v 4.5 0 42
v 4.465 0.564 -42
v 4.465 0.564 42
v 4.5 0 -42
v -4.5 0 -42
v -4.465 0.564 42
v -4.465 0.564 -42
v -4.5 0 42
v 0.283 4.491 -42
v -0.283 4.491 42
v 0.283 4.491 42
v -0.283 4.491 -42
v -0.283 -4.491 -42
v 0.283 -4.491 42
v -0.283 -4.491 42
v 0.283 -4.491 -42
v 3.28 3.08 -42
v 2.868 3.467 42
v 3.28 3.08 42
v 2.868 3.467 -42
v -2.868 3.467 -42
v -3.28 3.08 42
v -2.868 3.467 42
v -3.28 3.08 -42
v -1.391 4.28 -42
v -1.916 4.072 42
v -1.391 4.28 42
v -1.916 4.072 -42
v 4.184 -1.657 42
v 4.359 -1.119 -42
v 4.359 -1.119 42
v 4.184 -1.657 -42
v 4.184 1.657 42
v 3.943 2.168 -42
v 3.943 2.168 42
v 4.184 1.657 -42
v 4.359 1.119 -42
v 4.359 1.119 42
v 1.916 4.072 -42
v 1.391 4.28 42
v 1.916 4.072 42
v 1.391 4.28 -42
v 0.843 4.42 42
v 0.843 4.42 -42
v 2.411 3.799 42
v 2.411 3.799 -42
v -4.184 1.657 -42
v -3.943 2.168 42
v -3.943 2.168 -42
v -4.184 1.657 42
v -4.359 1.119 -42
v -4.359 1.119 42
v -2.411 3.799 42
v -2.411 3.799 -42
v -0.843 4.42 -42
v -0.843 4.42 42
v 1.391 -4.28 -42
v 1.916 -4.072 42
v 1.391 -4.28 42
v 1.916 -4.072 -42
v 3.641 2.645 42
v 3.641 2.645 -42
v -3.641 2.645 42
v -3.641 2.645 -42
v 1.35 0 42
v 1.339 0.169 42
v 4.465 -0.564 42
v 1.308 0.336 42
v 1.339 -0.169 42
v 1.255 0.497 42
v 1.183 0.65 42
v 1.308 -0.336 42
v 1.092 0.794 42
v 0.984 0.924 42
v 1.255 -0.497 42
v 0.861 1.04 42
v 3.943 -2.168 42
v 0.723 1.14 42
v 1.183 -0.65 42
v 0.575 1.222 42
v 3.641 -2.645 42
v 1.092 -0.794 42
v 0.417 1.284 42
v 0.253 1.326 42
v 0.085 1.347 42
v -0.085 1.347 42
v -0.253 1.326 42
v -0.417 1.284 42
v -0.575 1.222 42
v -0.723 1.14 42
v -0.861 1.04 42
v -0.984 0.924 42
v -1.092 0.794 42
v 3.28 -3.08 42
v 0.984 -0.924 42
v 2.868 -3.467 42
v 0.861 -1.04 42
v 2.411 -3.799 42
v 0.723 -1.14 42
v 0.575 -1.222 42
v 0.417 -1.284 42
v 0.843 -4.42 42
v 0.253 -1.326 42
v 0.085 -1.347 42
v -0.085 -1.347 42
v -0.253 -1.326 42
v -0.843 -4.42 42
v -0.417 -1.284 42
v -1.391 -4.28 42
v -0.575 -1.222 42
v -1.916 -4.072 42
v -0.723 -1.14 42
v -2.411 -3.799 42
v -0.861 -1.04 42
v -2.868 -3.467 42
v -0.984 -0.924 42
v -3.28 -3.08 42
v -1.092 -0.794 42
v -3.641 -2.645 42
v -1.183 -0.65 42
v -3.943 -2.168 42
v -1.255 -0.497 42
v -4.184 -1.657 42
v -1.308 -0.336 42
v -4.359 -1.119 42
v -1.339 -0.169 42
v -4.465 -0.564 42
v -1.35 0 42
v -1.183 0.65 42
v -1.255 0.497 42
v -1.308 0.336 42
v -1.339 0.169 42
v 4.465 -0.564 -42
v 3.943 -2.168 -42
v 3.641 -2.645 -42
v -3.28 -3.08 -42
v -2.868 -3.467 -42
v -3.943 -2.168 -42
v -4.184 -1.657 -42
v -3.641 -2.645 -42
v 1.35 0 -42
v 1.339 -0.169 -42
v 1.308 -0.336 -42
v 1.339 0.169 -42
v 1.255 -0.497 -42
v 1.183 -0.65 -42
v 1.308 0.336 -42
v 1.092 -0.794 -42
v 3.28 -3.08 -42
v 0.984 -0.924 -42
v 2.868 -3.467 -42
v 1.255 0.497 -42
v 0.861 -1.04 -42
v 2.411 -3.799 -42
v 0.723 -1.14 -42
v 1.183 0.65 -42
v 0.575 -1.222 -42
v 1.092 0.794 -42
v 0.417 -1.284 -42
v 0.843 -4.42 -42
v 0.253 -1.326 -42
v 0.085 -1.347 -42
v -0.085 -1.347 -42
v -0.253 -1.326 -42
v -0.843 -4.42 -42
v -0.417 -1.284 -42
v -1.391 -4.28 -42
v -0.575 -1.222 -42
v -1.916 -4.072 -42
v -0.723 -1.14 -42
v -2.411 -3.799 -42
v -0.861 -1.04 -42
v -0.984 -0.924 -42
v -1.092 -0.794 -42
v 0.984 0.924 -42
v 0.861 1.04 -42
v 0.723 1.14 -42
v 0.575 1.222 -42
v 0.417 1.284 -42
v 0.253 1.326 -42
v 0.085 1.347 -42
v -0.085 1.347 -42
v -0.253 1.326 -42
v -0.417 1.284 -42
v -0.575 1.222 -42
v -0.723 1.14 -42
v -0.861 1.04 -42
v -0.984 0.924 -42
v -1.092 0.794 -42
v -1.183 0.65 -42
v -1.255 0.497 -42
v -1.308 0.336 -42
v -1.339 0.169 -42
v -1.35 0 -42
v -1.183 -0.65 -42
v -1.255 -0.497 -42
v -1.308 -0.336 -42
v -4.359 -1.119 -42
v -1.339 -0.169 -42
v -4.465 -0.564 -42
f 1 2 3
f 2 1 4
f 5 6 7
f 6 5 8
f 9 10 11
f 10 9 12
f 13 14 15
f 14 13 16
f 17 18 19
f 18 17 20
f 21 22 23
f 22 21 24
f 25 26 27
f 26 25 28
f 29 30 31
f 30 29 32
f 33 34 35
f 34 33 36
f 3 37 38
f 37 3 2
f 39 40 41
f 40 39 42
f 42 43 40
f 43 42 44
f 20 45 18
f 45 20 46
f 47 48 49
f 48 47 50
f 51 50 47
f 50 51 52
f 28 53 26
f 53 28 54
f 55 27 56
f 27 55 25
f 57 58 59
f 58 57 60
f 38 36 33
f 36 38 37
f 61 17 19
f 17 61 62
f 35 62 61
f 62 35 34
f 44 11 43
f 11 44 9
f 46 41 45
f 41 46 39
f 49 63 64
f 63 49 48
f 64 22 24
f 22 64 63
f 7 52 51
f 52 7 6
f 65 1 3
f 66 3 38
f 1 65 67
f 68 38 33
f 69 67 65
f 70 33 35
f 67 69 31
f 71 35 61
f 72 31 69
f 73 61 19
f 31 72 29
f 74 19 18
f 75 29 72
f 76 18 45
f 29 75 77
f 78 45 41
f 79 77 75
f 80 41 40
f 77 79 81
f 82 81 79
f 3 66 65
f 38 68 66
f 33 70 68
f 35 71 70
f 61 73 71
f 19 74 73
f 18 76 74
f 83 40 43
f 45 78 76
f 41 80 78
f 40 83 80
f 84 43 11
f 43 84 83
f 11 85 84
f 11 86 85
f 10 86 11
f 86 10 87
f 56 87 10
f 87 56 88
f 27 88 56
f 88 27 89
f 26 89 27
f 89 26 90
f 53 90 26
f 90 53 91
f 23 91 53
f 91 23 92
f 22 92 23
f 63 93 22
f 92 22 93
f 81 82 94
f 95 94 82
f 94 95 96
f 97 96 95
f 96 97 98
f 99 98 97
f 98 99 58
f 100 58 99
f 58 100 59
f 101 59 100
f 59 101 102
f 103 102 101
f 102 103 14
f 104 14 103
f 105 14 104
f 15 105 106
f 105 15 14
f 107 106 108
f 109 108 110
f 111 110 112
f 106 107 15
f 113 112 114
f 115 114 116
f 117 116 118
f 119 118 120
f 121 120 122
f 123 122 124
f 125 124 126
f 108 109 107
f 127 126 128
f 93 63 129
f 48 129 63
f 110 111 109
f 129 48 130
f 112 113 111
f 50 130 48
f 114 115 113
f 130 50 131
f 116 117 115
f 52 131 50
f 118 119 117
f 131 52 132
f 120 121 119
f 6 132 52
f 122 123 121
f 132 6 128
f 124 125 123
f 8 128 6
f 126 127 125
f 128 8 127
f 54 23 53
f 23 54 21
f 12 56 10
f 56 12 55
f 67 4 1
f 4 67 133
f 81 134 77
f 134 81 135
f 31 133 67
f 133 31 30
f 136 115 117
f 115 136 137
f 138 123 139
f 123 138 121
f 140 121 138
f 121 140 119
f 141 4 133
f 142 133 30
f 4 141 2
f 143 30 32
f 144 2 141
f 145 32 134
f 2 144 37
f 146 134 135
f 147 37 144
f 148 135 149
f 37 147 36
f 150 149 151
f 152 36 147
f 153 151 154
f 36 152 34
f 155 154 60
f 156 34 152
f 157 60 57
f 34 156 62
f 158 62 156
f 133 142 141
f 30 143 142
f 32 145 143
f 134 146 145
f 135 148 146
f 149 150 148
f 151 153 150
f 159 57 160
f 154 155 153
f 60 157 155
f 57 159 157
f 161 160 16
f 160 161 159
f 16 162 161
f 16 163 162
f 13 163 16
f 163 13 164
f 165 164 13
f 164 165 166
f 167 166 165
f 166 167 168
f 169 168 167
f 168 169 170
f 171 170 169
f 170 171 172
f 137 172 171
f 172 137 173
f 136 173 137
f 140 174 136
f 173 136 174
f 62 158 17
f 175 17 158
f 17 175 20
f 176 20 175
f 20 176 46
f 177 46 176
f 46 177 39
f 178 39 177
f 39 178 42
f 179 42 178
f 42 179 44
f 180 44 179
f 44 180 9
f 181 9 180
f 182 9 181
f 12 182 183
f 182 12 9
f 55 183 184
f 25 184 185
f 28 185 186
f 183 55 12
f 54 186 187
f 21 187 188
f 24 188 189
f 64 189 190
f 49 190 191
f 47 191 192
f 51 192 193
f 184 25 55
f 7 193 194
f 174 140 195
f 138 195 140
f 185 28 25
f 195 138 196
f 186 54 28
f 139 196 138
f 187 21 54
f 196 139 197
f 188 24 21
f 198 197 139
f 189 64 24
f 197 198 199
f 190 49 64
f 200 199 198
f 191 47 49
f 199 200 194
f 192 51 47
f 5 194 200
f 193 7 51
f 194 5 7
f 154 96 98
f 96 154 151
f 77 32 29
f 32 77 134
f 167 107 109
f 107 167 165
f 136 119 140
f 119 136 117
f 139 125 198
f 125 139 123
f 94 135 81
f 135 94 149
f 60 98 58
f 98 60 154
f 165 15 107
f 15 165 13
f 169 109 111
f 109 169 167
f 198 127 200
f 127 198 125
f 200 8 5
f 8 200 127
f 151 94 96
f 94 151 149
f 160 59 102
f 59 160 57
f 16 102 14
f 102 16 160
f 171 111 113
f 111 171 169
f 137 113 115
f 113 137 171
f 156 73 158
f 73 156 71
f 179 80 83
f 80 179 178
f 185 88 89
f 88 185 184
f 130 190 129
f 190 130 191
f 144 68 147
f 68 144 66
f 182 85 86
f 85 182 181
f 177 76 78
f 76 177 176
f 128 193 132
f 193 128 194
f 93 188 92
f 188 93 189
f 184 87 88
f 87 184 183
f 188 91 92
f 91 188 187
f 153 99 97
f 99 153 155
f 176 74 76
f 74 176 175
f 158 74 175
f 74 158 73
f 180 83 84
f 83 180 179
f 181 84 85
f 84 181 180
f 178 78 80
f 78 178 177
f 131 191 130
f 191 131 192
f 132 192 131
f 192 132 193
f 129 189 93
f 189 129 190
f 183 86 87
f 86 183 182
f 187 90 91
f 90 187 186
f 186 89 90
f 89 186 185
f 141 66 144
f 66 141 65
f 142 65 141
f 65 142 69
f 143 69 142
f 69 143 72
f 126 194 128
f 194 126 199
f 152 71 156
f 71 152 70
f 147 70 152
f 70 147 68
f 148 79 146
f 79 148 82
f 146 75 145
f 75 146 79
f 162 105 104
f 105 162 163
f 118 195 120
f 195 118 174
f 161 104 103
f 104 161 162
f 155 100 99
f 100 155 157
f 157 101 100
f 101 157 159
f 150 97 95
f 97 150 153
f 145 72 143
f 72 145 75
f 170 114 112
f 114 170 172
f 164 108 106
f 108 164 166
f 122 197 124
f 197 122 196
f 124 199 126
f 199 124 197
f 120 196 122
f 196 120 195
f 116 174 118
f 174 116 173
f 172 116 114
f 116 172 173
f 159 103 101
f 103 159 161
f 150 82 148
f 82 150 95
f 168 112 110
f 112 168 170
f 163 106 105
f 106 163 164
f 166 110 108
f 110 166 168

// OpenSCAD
$fn = 50;


difference() {
	union() {
		translate(v = [0, 0, -42.0000000000]) {
			cylinder(h = 84, r = 4.5000000000);
		}
	}
	union() {
		translate(v = [0, 0, -100.0000000000]) {
			cylinder(h = 200, r = 1.3500000000);
		}
	}
}
